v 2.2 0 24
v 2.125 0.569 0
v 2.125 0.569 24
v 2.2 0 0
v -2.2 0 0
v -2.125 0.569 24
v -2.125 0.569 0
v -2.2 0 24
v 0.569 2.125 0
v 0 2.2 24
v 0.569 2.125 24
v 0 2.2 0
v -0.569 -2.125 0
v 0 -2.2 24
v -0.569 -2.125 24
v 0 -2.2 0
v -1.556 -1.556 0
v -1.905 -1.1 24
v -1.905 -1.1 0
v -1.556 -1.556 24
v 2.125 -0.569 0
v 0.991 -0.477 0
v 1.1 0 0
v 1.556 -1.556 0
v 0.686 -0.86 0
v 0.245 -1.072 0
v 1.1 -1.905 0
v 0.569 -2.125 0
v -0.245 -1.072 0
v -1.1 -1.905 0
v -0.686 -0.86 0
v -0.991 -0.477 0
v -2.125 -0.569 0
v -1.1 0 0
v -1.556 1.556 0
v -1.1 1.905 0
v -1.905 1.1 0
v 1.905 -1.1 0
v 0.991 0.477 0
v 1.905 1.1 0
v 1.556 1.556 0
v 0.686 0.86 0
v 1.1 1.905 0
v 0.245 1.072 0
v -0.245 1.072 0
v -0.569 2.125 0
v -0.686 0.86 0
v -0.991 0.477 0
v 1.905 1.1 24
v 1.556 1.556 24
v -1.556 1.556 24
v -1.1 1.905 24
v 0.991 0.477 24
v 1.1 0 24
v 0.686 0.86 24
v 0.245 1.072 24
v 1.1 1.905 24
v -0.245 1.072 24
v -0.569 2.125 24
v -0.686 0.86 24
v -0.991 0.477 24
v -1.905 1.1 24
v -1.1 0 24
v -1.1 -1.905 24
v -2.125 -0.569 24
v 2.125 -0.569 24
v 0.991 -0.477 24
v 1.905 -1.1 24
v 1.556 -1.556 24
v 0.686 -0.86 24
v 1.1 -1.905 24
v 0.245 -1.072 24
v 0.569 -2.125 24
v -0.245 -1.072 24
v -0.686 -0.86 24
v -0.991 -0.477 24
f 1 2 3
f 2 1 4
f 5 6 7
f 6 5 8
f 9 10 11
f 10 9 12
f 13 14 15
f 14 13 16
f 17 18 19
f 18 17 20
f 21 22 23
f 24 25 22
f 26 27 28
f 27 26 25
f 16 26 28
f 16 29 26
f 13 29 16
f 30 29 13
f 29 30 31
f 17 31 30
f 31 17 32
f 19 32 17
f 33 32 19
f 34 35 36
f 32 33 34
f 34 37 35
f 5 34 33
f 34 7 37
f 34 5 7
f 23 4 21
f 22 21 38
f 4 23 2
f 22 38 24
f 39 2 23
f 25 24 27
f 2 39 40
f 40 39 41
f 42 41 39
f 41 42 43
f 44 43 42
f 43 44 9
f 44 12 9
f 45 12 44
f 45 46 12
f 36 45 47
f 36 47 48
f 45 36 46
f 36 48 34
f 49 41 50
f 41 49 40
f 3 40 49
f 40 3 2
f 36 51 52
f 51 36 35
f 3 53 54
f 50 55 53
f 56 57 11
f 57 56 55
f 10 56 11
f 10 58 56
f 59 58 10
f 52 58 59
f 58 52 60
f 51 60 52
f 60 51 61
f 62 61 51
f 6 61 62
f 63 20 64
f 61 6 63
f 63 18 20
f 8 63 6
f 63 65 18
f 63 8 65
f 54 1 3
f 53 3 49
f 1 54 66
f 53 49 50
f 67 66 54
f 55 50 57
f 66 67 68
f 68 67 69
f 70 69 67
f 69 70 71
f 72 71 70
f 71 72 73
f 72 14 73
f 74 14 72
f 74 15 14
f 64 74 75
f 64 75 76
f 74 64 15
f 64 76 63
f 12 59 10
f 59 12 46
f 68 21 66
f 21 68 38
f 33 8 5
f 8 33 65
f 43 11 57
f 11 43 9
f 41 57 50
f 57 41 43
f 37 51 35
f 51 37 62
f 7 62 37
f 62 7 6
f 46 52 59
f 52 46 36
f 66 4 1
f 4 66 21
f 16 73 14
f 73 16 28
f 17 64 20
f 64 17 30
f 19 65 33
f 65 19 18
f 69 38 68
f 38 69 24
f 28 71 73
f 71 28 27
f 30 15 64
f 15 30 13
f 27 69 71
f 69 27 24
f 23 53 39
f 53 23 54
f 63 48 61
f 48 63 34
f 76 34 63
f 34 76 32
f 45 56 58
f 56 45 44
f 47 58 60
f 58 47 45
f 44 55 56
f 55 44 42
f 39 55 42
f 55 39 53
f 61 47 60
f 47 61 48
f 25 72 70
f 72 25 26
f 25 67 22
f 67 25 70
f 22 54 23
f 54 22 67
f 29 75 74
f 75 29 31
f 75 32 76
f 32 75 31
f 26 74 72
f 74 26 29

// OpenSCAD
// file: ../print-parameters.scad
/*
Parametric PELA Print Tuning Parameters

Published at https://PELAblocks.org

By Paul Houghton
Twitter: @mobile_rat
Email: paulirotta@gmail.com
Blog: https://medium.com/@paulhoughton

Creative Commons Attribution-ShareAlike 4.0 International License
    https://creativecommons.org/licenses/by-sa/4.0/legalcode

Open source design, Powered By Futurice. Come work with the best.
    https://www.futurice.com/

Imported automatically into other design files when you include PELA_parameters:
    include <PELA_parameters.scad>
 

INSTRUCTIONS
============
1. Set 'flexible_material' and 'large_nozzle' below according to your printer.

2. Open 'PELA_calibration.scad' to generate and print the calibration .STL (In OpenSCAD press F6, then 'export').

3. Test fit the (a) top knobs, (b) bottom sockets, (c) technic holes on the side. These 3 numbers are your 'calibration'. Most slicer settings will not change the calibration for a given material, but use common sense and re-calibrate if needed.

4. Enter those numbers in this file.

5. Print a couple of 4x4 blocks with these adjusted parameters

6. Confirm your calibration fit with real PELA and between two printed blocks. All models will now adjust to this settings..


SUGGESTIONS
===========
- Don't waste time- use LEGO and LEGO technics to assemble what you need with a minimum of printed parts. Print the part yourself when you need something special (shape, function, material..).

- Make sure 'flexible_material' and 'large_nozzle' are set before you print the calibration block. These affect the size of flextures. All other numbers in this file are then set based on preference for a good fit of the calibration block to LEGO and other PELA pieces.

- Layer height is not important to PELA except for readable text on the sides of block

- Print PELA upright, or at up to 45 degrees tilt if needed. Avoid autogenerated supports inside the PELA block unless they are dissolvable.

- Printing fast is generally not a problem. PELA parts do need good inter-layer adhesion, so consider reducing the fan speed if this is a problem.

- Turn down the bed heater on low temperature materials like PLA to avoid "elephant foot" expansion of the bottom edges. Turn on 'brim, outside only' if you need more adhesion.

- Most printing materials are slippery. For this reason leave the top knobs at their default "taller than LEGO" setting to better grip. The downside is you can't push tall PELA knobs into a thin LEGO panel. You can adjust this in PELA-parmaeters.scad or in other cases disable knobs and focus on technic connections.

- Choose more flexible materials that are "tough" rather than stiff. TPU95 and Nylon are ideal and virtually indistructable. Brittle materials will not have as good a fit and may chip or crack. If you prefer PLA, you should try different brands- they vary considerably. Polymaker and Ultimaker PLA flex nicely.

- Smaller 0.4mm nozzles give better results. If 'large_nozzle' (>= 0.5mm) is true, the models will adjust the bottom socket geometry to make some of the inner structures thicker. If this is set wrong, then thin walls with a large nozzle may be eliminated by your slicer.

- See 'SLICER.md' for more tips and settings that have worked for us on specific materials.
*/

/* [Main Calibration Settings] */

// Switch between flexible and rigid material geometry. Set 'true' for Nylon, TPU (TPU95, Ninjaflex/TPU85), NGEN Semiflex and other flexible filaments. Subtle adjustments to part internal geometry will take advantage of this in flextures.
flexible_material = false;

// Set true if nozzle is >= 0.5mm. This simplifies the bottom gemoetry to create wider walls but at the cost of loosing the alternate bottom connector socket between every 4 other sockets. If not used with a large extruder the slicer may decimate features.
large_nozzle = true;

// Top knob size adjustment (larger is a stiffer fit, add in multiples of 0.01mm as determined from your calibration-block print)
top_tweak = -0.03; // -0.04 for ABS, 0.04 for rPET, -0.06 for Pro1, -0.08 for Polymaker Polylite PLA, -0.03 for NGEN, 0.02 for NGEN Flex, 0.09 for Ninjaflex, -0.02 for Bridge Nylon, 0.02 for Ultimaker TPU95A, 0.0 Biofila Silk

// Bottom connector size adjustment (smaller is tigher, add in multiples of 0.01mm as determined from your calibration-block print)
bottom_tweak = 0.08; // -0.02 for ABS, 0.10 for rPET, 0.08 for Pro1, 0.04 for Polymaker Polylite PLA, 0.08 for NGEN, 0.02 for NGEN Flex, -0.02 for Ninjaflex, 0.15 for Bridge Nylon, 0.04 for Ultimaker TPU95A, 0.0 Biofila Silk

// Side connector size adjustment (larger is a looser fit, add in multiples of 0.01mm as determined from your calibration-block print)
axle_hole_tweak = 0.05; // 0.05 for ABS, 0.04 for rPET, 0.04 for Pro1, 0.06 for Polymaker Polylite PLA, 0.05 for NGEN, 0 for NGEN Flex, 0.04 for Ninjaflex, 0.06 for Bridge Nylon, -0.06 for Ultimaker TPU95A, -0.04 Biofila Silk

// Generate print-time support aid structures for models which offer this. Turn this off if you will use slicer-generated print supports, but be aware that these may make the bottom connectors difficult to post process.
print_supports = true;

// In some models, the user will load two STL files into the slicer for a dual-material printer, one for each material/color. If "false" then the user wants a simplified, single material model
two_color_print = true;

// Add a text label to models which support that. The two_color_print setting will also affect if these is raised or colored text
text_labels = true;
// main file
/*
PELA Parametric LEGO-compatible Technic Axle

PELA Parametric Blocks - 3D Printed LEGO-compatible parametric blocks

Published at https://PELAblocks.org

By Paul Houghton
Twitter: @mobile_rat
Email: paulirotta@gmail.com
Blog: https://medium.com/@paulhoughton

Creative Commons Attribution-ShareAlike 4.0 International License
    https://creativecommons.org/licenses/by-sa/4.0/legalcode

Open source design, Powered By Futurice. Come work with the best.
    https://www.futurice.com/
*/

include <../parameters.scad>
include <../print-parameters.scad>
use <../block.scad>

/* [Technic Pin Options] */

// Axle length
axle_length = block_width(3);

// An axle which fits loosely in a technic bearing hole
axle_radius = 2.2;

// Size of the hollow inside an axle
axle_center_radius=axle_radius/2;

///////////////

axle();

    
//////////////////


// A round rotation axle
module axle(axle_radius=axle_radius, axle_center_radius=axle_center_radius, axle_length=axle_length) {

    difference() {
        cylinder(r=axle_radius, h=axle_length);
        translate([0, 0, -defeather])
            cylinder(r=axle_center_radius, h=axle_length+2*defeather);
    }
}
